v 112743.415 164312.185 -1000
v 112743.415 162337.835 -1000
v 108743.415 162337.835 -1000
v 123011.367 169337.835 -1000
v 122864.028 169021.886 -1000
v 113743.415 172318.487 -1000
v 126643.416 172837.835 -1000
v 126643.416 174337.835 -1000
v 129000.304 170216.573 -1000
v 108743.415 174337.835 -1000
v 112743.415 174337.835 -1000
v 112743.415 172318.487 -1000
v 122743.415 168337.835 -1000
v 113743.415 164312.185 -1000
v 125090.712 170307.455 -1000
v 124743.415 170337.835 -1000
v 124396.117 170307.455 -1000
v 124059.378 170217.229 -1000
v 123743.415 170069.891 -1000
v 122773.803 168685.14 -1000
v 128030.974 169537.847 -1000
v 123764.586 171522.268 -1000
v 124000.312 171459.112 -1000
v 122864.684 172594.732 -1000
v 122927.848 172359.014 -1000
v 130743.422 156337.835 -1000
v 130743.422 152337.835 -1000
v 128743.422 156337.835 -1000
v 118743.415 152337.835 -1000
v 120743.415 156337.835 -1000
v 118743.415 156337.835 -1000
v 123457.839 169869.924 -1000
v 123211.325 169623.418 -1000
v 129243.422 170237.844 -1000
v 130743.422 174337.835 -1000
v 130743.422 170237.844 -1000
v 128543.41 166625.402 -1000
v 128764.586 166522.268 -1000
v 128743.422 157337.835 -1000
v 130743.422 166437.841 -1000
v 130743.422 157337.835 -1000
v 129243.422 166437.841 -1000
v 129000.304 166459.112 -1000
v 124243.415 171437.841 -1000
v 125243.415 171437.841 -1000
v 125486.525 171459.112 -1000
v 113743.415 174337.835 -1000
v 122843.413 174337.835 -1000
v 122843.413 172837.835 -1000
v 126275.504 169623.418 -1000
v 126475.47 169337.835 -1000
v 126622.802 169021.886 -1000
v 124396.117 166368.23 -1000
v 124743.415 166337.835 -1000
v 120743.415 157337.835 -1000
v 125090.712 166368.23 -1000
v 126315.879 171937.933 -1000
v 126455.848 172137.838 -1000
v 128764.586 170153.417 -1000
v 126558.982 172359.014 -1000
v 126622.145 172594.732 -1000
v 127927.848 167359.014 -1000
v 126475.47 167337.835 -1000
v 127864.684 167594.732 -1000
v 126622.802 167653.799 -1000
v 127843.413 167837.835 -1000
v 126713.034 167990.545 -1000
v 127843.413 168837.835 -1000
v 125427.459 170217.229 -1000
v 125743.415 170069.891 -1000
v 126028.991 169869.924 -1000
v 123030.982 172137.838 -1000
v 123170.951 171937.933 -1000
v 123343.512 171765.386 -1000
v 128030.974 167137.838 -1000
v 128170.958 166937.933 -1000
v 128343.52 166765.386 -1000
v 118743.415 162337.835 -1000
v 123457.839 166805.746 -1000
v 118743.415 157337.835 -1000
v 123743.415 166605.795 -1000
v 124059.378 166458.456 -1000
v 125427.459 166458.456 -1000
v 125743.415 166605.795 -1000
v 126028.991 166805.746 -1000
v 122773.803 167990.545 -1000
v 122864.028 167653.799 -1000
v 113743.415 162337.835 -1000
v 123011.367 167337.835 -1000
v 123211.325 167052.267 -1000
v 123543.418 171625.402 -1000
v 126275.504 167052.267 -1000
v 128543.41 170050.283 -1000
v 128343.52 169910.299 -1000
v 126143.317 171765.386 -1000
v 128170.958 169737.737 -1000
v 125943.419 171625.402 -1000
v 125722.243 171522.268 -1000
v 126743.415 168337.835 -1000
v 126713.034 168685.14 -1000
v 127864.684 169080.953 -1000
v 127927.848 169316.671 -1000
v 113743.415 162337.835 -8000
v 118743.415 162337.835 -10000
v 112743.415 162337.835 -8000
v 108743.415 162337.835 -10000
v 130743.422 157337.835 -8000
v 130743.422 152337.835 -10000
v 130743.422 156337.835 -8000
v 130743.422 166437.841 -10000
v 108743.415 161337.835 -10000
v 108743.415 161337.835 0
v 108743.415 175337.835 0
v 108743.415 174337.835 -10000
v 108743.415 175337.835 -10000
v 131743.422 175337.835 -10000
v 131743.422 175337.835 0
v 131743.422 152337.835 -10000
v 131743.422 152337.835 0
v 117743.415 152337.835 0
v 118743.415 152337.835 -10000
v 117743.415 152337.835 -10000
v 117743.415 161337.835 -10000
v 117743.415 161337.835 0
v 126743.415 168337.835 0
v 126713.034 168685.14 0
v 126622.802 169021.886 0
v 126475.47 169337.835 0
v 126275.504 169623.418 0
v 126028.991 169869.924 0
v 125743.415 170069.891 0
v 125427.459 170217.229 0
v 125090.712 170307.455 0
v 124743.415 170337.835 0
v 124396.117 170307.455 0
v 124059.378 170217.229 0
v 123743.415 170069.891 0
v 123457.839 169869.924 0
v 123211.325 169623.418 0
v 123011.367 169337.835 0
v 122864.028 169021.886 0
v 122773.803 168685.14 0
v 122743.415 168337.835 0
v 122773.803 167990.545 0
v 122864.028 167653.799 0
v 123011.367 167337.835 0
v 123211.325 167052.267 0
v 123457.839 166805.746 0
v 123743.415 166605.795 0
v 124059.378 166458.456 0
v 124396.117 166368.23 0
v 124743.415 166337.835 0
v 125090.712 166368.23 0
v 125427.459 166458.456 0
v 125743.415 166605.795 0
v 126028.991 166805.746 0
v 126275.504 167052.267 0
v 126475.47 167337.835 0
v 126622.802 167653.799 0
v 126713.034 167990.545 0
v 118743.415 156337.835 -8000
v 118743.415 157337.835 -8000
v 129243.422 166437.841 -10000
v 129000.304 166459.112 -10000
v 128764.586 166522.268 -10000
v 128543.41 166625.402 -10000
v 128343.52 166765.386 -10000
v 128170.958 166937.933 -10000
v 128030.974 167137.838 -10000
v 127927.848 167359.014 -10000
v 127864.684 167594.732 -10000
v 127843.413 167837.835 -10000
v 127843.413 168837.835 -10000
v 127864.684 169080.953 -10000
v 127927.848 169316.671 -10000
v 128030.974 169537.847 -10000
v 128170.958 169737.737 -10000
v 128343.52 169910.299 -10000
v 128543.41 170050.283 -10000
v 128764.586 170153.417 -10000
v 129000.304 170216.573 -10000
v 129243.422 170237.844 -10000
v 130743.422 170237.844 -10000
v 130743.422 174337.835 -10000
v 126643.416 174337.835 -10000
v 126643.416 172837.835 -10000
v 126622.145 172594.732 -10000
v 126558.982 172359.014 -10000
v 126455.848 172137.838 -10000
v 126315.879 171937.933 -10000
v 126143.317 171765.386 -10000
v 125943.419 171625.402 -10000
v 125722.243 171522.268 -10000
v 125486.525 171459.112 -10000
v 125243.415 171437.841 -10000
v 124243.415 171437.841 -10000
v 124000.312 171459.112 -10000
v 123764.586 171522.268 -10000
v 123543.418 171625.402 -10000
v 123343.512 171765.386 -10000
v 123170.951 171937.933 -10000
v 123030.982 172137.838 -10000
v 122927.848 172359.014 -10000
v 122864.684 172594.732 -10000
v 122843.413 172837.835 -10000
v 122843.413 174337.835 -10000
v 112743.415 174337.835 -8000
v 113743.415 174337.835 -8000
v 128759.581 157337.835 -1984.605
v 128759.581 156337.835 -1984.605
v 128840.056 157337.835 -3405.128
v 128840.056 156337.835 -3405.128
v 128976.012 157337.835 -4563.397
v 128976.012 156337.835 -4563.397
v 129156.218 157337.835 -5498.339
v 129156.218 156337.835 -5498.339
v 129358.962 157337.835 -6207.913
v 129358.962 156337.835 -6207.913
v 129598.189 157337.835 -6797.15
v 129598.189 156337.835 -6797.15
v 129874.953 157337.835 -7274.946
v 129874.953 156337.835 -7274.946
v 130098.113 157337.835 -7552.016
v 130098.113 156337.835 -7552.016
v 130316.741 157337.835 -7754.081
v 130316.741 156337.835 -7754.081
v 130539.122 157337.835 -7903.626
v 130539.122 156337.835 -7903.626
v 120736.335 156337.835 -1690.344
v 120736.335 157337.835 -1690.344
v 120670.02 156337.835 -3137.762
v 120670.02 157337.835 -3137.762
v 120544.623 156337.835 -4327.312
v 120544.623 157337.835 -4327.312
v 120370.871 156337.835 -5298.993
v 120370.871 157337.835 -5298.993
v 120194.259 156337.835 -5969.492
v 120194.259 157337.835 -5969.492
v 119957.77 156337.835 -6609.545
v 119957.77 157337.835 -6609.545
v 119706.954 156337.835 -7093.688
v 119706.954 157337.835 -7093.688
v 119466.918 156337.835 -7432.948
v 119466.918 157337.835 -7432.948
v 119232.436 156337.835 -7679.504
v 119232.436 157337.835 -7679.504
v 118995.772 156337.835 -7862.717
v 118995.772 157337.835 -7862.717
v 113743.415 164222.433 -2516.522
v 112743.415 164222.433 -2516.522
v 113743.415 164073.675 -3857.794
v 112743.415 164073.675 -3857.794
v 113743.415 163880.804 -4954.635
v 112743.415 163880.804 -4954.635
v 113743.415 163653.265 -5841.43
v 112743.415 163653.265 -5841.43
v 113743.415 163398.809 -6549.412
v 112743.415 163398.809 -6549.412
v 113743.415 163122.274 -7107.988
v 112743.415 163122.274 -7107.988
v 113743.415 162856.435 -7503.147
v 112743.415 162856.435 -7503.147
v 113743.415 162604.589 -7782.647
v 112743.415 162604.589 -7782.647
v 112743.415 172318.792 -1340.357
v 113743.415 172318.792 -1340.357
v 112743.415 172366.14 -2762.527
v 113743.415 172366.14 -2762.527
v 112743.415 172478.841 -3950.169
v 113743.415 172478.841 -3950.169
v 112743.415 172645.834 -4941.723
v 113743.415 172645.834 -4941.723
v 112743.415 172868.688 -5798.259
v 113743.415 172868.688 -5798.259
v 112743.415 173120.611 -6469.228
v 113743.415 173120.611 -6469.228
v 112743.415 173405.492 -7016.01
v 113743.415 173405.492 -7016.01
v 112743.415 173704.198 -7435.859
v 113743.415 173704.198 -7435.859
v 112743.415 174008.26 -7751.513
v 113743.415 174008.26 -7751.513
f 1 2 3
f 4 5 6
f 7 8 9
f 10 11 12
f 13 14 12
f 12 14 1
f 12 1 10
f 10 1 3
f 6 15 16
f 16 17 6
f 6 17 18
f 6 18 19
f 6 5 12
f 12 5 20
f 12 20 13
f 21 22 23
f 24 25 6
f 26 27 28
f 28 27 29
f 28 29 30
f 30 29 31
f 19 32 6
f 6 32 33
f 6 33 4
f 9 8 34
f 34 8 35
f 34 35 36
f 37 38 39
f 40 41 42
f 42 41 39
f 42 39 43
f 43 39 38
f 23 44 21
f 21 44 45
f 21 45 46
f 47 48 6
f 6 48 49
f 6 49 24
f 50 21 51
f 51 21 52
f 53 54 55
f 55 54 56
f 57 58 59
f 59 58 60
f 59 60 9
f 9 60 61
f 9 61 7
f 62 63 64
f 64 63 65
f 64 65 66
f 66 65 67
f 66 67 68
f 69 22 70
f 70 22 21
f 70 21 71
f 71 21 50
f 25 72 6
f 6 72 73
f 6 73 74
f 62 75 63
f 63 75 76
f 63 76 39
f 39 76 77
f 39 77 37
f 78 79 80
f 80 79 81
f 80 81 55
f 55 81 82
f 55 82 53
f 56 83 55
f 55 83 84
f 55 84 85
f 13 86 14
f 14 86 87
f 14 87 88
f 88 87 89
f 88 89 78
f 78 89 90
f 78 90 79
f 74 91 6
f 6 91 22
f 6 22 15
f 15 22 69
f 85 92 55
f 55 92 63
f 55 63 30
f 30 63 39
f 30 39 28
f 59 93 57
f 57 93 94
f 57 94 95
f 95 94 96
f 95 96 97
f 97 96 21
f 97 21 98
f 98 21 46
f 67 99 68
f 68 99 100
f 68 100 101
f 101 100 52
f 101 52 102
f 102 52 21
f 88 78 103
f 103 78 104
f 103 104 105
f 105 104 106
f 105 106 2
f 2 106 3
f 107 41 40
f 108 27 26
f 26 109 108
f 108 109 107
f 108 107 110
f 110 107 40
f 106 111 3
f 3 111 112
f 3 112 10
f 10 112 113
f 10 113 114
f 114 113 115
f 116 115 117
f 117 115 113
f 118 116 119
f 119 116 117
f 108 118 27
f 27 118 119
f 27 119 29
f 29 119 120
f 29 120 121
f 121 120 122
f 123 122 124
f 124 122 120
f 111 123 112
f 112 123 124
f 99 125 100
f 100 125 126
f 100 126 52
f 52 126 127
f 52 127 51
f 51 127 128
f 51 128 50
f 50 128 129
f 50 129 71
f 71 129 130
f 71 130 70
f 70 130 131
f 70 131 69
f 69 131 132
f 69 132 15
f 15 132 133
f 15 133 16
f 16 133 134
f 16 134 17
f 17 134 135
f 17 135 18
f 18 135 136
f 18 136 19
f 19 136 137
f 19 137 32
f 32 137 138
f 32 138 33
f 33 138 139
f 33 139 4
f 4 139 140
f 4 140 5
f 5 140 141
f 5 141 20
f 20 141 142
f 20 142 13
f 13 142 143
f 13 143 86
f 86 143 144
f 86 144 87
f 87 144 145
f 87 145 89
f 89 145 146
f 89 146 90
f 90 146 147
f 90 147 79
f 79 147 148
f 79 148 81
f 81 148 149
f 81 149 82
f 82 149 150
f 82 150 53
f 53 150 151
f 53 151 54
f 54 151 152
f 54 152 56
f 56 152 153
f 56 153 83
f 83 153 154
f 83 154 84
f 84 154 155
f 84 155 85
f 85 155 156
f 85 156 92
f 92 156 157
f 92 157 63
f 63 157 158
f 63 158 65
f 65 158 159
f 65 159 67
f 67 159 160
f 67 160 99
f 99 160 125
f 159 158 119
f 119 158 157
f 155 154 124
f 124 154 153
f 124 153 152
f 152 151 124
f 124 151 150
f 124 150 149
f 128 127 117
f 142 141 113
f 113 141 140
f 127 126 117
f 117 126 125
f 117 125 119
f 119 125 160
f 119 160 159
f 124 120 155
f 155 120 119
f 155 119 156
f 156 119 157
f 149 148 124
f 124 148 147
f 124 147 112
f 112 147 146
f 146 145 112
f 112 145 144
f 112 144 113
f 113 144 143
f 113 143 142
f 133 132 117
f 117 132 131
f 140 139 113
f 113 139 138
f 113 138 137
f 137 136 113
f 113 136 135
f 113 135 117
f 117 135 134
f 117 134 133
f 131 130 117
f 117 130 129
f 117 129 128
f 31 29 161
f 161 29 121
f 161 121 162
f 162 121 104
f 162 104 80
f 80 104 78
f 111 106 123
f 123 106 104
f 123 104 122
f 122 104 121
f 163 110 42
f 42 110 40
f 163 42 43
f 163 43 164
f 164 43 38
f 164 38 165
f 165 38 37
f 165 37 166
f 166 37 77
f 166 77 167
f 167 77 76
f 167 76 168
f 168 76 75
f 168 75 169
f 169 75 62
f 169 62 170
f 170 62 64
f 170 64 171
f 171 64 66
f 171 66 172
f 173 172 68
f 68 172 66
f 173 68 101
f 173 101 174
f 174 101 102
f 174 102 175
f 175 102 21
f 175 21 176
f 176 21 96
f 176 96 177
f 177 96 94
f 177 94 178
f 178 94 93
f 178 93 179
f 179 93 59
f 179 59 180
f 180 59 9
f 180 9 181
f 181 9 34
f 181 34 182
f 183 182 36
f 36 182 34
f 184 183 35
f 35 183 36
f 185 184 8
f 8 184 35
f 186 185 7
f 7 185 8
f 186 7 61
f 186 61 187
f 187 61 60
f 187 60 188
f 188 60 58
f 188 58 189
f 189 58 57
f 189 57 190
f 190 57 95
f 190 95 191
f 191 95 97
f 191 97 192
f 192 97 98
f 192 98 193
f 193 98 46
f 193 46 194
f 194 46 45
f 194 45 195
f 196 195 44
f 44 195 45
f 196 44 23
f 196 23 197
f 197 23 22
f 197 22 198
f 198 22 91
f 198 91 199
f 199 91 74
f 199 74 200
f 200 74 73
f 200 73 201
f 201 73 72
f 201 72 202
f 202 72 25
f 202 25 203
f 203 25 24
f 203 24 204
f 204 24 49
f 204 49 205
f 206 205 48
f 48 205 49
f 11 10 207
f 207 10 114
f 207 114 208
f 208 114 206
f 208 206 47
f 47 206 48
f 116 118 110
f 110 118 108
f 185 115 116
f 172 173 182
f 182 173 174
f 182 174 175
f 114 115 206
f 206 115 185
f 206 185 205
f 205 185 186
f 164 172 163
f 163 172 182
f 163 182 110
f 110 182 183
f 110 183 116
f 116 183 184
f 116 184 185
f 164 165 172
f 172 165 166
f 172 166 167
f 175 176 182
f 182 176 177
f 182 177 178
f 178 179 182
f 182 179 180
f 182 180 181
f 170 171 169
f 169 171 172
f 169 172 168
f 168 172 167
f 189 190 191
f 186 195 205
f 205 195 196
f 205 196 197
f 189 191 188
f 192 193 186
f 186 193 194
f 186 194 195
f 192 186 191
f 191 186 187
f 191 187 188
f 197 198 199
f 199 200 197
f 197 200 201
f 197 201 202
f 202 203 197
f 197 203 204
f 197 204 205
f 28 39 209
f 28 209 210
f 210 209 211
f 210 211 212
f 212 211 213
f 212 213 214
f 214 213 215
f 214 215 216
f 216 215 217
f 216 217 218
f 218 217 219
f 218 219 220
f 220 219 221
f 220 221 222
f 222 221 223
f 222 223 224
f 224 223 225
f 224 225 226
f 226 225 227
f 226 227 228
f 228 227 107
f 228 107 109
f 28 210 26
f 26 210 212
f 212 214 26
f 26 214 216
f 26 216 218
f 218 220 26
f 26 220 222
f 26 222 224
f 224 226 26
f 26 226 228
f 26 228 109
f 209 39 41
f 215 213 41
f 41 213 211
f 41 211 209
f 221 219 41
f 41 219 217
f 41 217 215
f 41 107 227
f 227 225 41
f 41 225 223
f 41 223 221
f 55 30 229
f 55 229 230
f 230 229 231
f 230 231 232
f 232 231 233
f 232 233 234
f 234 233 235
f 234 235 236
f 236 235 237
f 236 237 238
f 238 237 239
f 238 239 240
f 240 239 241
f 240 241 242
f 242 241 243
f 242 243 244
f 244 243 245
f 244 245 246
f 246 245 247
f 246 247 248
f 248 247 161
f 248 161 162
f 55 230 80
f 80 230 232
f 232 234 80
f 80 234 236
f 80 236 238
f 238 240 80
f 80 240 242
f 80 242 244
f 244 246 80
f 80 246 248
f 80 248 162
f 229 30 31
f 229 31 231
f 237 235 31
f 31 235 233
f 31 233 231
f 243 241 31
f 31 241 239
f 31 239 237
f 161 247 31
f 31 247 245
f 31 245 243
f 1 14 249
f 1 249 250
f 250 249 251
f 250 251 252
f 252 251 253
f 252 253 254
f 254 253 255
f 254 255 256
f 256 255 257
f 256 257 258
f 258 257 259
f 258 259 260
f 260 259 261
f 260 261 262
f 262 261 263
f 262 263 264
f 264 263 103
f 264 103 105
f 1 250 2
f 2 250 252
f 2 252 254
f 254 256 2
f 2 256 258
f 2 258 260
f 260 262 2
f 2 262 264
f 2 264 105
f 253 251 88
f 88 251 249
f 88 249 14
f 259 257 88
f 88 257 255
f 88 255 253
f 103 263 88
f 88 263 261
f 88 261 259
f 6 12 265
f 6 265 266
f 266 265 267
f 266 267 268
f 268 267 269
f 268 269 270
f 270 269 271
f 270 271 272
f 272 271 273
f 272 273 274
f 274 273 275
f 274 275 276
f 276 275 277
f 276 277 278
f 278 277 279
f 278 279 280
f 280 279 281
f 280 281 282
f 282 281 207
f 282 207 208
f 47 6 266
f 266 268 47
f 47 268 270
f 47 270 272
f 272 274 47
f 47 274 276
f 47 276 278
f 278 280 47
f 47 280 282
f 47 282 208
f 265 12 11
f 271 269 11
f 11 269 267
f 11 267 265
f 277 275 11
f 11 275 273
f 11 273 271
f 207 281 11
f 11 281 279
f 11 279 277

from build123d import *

# Parameters (mm, degrees)
CROQUIS1_R                   = 2000
SALIENTE_EXTRUIR1_DEPTH      = 1000
SALIENTE_EXTRUIR2_DEPTH      = 10000
SALIENTE_EXTRUIR3_DEPTH      = 500
SALIENTE_EXTRUIR3_DEPTH_BACK = 500
SALIENTE_EXTRUIR5_DEPTH      = 500
SALIENTE_EXTRUIR5_DEPTH_BACK = 500


with BuildPart() as part:
    # Croquis1 → Saliente-Extruir1 (new body)
    with BuildSketch(Plane.XY):
        Polygon((117743.416897498, 161337.836627923), (117743.416897498, 152337.836627923), (131743.416897498, 152337.836627923), (131743.416897498, 175337.836627923), (108743.416897498, 175337.836627923), (108743.416897498, 161337.836627923), align=None)
        with Locations((124743.416897498, 168337.836627923)):
            Circle(CROQUIS1_R, mode=Mode.SUBTRACT)
    extrude(amount=-SALIENTE_EXTRUIR1_DEPTH)

    # Croquis1<6> → Saliente-Extruir2 (add)
    with BuildSketch(Plane.XY):
        Polygon((117743.416897498, 161337.836627923), (117743.416897498, 152337.836627923), (118743.416897498, 152337.836627923), (118743.416897498, 162337.836627923), (108743.416897498, 162337.836627923), (108743.416897498, 161337.836627923), align=None)
        with BuildLine():
            Line((130743.416897498, 152337.836627923), (131743.416897498, 152337.836627923))
            Line((131743.416897498, 152337.836627923), (131743.416897498, 175337.836627923))
            Line((131743.416897498, 175337.836627923), (108743.416897498, 175337.836627923))
            Line((108743.416897498, 175337.836627923), (108743.416897498, 174337.836627923))
            Line((108743.416897498, 174337.836627923), (122843.416897498, 174337.836627923))
            Line((122843.416897498, 174337.836627923), (122843.416897498, 172837.836627923))
            ThreePointArc((122843.416897498, 172837.836627923), (123253.467403837, 171847.887134262), (124243.416897498, 171437.836627923))
            Line((124243.416897498, 171437.836627923), (125243.416897498, 171437.836627923))
            ThreePointArc((125243.416897498, 171437.836627923), (126233.366391159, 171847.887134262), (126643.416897498, 172837.836627923))
            Line((126643.416897498, 172837.836627923), (126643.416897498, 174337.836627923))
            Line((126643.416897498, 174337.836627923), (130743.416897498, 174337.836627923))
            Line((130743.416897498, 174337.836627923), (130743.416897498, 170237.836627923))
            Line((130743.416897498, 170237.836627923), (129243.416897498, 170237.836627923))
            ThreePointArc((129243.416897498, 170237.836627923), (128253.467403837, 169827.786121585), (127843.416897498, 168837.836627923))
            Line((127843.416897498, 168837.836627923), (127843.416897498, 167837.836627923))
            ThreePointArc((127843.416897498, 167837.836627923), (128253.467403837, 166847.887134262), (129243.416897498, 166437.836627923))
            Line((129243.416897498, 166437.836627923), (130743.416897498, 166437.836627923))
            Line((130743.416897498, 166437.836627923), (130743.416897498, 152337.836627923))
        make_face()
    extrude(amount=-SALIENTE_EXTRUIR2_DEPTH)

    # Croquis2 → Saliente-Extruir3 (add, two sides: drawn at the far end of the back side and taken through both)
    with BuildSketch(Plane(origin=(0, 156837.836627923, 0), x_dir=(1, 0, 0), z_dir=(0, 1, 0)).offset(-SALIENTE_EXTRUIR3_DEPTH_BACK)):
        with BuildLine():
            add(Edge.make_bspline(
                [(118743.416897498, 8000), (120739.811138244, 7120.578794783), (120743.416897498, 1000)],
                knots=[0, 0, 0, 0.514460755, 0.514460755, 0.514460755], degree=2))
            Line((118743.416897498, 8000), (118743.416897498, 1000))
            Line((118743.416897498, 1000), (120743.416897498, 1000))
        make_face()
        with BuildLine():
            Line((130743.416897498, 1000), (130743.416897498, 8000))
            add(Edge.make_bspline(
                [(130743.416897498, 8000), (128761.675222051, 7234.348262256), (128743.416897498, 1000)],
                knots=[0, 0, 0, 0.590989184, 0.590989184, 0.590989184], degree=2))
            Line((128743.416897498, 1000), (130743.416897498, 1000))
        make_face()
    extrude(amount=SALIENTE_EXTRUIR3_DEPTH + SALIENTE_EXTRUIR3_DEPTH_BACK)

    # Croquis4 → Saliente-Extruir5 (add, two sides: drawn at the far end of the back side and taken through both)
    with BuildSketch(Plane(origin=(113243.416897498, 0, 0), x_dir=(0, 0, -1), z_dir=(1, 0, 0)).offset(-SALIENTE_EXTRUIR5_DEPTH_BACK)):
        with BuildLine():
            Line((8000, 174337.836627923), (0, 174337.836627923))
            Line((0, 174337.836627923), (0, 172337.836627923))
            add(Edge.make_bspline(
                [(8000, 174337.836627923), (6599.854554041, 172118.74354217), (0, 172337.836627923)],
                knots=[0, 0, 0, 0.64837766, 0.64837766, 0.64837766], degree=2))
        make_face()
        with BuildLine():
            add(Edge.make_bspline(
                [(8000, 162337.836627923), (6698.658965378, 164240.824079883), (0, 164337.836627923)],
                knots=[0, 0, 0, 0.707529781, 0.707529781, 0.707529781], degree=2))
            Line((0, 164337.836627923), (0, 162337.836627923))
            Line((0, 162337.836627923), (8000, 162337.836627923))
        make_face()
    extrude(amount=SALIENTE_EXTRUIR5_DEPTH + SALIENTE_EXTRUIR5_DEPTH_BACK)


solid = part.part
